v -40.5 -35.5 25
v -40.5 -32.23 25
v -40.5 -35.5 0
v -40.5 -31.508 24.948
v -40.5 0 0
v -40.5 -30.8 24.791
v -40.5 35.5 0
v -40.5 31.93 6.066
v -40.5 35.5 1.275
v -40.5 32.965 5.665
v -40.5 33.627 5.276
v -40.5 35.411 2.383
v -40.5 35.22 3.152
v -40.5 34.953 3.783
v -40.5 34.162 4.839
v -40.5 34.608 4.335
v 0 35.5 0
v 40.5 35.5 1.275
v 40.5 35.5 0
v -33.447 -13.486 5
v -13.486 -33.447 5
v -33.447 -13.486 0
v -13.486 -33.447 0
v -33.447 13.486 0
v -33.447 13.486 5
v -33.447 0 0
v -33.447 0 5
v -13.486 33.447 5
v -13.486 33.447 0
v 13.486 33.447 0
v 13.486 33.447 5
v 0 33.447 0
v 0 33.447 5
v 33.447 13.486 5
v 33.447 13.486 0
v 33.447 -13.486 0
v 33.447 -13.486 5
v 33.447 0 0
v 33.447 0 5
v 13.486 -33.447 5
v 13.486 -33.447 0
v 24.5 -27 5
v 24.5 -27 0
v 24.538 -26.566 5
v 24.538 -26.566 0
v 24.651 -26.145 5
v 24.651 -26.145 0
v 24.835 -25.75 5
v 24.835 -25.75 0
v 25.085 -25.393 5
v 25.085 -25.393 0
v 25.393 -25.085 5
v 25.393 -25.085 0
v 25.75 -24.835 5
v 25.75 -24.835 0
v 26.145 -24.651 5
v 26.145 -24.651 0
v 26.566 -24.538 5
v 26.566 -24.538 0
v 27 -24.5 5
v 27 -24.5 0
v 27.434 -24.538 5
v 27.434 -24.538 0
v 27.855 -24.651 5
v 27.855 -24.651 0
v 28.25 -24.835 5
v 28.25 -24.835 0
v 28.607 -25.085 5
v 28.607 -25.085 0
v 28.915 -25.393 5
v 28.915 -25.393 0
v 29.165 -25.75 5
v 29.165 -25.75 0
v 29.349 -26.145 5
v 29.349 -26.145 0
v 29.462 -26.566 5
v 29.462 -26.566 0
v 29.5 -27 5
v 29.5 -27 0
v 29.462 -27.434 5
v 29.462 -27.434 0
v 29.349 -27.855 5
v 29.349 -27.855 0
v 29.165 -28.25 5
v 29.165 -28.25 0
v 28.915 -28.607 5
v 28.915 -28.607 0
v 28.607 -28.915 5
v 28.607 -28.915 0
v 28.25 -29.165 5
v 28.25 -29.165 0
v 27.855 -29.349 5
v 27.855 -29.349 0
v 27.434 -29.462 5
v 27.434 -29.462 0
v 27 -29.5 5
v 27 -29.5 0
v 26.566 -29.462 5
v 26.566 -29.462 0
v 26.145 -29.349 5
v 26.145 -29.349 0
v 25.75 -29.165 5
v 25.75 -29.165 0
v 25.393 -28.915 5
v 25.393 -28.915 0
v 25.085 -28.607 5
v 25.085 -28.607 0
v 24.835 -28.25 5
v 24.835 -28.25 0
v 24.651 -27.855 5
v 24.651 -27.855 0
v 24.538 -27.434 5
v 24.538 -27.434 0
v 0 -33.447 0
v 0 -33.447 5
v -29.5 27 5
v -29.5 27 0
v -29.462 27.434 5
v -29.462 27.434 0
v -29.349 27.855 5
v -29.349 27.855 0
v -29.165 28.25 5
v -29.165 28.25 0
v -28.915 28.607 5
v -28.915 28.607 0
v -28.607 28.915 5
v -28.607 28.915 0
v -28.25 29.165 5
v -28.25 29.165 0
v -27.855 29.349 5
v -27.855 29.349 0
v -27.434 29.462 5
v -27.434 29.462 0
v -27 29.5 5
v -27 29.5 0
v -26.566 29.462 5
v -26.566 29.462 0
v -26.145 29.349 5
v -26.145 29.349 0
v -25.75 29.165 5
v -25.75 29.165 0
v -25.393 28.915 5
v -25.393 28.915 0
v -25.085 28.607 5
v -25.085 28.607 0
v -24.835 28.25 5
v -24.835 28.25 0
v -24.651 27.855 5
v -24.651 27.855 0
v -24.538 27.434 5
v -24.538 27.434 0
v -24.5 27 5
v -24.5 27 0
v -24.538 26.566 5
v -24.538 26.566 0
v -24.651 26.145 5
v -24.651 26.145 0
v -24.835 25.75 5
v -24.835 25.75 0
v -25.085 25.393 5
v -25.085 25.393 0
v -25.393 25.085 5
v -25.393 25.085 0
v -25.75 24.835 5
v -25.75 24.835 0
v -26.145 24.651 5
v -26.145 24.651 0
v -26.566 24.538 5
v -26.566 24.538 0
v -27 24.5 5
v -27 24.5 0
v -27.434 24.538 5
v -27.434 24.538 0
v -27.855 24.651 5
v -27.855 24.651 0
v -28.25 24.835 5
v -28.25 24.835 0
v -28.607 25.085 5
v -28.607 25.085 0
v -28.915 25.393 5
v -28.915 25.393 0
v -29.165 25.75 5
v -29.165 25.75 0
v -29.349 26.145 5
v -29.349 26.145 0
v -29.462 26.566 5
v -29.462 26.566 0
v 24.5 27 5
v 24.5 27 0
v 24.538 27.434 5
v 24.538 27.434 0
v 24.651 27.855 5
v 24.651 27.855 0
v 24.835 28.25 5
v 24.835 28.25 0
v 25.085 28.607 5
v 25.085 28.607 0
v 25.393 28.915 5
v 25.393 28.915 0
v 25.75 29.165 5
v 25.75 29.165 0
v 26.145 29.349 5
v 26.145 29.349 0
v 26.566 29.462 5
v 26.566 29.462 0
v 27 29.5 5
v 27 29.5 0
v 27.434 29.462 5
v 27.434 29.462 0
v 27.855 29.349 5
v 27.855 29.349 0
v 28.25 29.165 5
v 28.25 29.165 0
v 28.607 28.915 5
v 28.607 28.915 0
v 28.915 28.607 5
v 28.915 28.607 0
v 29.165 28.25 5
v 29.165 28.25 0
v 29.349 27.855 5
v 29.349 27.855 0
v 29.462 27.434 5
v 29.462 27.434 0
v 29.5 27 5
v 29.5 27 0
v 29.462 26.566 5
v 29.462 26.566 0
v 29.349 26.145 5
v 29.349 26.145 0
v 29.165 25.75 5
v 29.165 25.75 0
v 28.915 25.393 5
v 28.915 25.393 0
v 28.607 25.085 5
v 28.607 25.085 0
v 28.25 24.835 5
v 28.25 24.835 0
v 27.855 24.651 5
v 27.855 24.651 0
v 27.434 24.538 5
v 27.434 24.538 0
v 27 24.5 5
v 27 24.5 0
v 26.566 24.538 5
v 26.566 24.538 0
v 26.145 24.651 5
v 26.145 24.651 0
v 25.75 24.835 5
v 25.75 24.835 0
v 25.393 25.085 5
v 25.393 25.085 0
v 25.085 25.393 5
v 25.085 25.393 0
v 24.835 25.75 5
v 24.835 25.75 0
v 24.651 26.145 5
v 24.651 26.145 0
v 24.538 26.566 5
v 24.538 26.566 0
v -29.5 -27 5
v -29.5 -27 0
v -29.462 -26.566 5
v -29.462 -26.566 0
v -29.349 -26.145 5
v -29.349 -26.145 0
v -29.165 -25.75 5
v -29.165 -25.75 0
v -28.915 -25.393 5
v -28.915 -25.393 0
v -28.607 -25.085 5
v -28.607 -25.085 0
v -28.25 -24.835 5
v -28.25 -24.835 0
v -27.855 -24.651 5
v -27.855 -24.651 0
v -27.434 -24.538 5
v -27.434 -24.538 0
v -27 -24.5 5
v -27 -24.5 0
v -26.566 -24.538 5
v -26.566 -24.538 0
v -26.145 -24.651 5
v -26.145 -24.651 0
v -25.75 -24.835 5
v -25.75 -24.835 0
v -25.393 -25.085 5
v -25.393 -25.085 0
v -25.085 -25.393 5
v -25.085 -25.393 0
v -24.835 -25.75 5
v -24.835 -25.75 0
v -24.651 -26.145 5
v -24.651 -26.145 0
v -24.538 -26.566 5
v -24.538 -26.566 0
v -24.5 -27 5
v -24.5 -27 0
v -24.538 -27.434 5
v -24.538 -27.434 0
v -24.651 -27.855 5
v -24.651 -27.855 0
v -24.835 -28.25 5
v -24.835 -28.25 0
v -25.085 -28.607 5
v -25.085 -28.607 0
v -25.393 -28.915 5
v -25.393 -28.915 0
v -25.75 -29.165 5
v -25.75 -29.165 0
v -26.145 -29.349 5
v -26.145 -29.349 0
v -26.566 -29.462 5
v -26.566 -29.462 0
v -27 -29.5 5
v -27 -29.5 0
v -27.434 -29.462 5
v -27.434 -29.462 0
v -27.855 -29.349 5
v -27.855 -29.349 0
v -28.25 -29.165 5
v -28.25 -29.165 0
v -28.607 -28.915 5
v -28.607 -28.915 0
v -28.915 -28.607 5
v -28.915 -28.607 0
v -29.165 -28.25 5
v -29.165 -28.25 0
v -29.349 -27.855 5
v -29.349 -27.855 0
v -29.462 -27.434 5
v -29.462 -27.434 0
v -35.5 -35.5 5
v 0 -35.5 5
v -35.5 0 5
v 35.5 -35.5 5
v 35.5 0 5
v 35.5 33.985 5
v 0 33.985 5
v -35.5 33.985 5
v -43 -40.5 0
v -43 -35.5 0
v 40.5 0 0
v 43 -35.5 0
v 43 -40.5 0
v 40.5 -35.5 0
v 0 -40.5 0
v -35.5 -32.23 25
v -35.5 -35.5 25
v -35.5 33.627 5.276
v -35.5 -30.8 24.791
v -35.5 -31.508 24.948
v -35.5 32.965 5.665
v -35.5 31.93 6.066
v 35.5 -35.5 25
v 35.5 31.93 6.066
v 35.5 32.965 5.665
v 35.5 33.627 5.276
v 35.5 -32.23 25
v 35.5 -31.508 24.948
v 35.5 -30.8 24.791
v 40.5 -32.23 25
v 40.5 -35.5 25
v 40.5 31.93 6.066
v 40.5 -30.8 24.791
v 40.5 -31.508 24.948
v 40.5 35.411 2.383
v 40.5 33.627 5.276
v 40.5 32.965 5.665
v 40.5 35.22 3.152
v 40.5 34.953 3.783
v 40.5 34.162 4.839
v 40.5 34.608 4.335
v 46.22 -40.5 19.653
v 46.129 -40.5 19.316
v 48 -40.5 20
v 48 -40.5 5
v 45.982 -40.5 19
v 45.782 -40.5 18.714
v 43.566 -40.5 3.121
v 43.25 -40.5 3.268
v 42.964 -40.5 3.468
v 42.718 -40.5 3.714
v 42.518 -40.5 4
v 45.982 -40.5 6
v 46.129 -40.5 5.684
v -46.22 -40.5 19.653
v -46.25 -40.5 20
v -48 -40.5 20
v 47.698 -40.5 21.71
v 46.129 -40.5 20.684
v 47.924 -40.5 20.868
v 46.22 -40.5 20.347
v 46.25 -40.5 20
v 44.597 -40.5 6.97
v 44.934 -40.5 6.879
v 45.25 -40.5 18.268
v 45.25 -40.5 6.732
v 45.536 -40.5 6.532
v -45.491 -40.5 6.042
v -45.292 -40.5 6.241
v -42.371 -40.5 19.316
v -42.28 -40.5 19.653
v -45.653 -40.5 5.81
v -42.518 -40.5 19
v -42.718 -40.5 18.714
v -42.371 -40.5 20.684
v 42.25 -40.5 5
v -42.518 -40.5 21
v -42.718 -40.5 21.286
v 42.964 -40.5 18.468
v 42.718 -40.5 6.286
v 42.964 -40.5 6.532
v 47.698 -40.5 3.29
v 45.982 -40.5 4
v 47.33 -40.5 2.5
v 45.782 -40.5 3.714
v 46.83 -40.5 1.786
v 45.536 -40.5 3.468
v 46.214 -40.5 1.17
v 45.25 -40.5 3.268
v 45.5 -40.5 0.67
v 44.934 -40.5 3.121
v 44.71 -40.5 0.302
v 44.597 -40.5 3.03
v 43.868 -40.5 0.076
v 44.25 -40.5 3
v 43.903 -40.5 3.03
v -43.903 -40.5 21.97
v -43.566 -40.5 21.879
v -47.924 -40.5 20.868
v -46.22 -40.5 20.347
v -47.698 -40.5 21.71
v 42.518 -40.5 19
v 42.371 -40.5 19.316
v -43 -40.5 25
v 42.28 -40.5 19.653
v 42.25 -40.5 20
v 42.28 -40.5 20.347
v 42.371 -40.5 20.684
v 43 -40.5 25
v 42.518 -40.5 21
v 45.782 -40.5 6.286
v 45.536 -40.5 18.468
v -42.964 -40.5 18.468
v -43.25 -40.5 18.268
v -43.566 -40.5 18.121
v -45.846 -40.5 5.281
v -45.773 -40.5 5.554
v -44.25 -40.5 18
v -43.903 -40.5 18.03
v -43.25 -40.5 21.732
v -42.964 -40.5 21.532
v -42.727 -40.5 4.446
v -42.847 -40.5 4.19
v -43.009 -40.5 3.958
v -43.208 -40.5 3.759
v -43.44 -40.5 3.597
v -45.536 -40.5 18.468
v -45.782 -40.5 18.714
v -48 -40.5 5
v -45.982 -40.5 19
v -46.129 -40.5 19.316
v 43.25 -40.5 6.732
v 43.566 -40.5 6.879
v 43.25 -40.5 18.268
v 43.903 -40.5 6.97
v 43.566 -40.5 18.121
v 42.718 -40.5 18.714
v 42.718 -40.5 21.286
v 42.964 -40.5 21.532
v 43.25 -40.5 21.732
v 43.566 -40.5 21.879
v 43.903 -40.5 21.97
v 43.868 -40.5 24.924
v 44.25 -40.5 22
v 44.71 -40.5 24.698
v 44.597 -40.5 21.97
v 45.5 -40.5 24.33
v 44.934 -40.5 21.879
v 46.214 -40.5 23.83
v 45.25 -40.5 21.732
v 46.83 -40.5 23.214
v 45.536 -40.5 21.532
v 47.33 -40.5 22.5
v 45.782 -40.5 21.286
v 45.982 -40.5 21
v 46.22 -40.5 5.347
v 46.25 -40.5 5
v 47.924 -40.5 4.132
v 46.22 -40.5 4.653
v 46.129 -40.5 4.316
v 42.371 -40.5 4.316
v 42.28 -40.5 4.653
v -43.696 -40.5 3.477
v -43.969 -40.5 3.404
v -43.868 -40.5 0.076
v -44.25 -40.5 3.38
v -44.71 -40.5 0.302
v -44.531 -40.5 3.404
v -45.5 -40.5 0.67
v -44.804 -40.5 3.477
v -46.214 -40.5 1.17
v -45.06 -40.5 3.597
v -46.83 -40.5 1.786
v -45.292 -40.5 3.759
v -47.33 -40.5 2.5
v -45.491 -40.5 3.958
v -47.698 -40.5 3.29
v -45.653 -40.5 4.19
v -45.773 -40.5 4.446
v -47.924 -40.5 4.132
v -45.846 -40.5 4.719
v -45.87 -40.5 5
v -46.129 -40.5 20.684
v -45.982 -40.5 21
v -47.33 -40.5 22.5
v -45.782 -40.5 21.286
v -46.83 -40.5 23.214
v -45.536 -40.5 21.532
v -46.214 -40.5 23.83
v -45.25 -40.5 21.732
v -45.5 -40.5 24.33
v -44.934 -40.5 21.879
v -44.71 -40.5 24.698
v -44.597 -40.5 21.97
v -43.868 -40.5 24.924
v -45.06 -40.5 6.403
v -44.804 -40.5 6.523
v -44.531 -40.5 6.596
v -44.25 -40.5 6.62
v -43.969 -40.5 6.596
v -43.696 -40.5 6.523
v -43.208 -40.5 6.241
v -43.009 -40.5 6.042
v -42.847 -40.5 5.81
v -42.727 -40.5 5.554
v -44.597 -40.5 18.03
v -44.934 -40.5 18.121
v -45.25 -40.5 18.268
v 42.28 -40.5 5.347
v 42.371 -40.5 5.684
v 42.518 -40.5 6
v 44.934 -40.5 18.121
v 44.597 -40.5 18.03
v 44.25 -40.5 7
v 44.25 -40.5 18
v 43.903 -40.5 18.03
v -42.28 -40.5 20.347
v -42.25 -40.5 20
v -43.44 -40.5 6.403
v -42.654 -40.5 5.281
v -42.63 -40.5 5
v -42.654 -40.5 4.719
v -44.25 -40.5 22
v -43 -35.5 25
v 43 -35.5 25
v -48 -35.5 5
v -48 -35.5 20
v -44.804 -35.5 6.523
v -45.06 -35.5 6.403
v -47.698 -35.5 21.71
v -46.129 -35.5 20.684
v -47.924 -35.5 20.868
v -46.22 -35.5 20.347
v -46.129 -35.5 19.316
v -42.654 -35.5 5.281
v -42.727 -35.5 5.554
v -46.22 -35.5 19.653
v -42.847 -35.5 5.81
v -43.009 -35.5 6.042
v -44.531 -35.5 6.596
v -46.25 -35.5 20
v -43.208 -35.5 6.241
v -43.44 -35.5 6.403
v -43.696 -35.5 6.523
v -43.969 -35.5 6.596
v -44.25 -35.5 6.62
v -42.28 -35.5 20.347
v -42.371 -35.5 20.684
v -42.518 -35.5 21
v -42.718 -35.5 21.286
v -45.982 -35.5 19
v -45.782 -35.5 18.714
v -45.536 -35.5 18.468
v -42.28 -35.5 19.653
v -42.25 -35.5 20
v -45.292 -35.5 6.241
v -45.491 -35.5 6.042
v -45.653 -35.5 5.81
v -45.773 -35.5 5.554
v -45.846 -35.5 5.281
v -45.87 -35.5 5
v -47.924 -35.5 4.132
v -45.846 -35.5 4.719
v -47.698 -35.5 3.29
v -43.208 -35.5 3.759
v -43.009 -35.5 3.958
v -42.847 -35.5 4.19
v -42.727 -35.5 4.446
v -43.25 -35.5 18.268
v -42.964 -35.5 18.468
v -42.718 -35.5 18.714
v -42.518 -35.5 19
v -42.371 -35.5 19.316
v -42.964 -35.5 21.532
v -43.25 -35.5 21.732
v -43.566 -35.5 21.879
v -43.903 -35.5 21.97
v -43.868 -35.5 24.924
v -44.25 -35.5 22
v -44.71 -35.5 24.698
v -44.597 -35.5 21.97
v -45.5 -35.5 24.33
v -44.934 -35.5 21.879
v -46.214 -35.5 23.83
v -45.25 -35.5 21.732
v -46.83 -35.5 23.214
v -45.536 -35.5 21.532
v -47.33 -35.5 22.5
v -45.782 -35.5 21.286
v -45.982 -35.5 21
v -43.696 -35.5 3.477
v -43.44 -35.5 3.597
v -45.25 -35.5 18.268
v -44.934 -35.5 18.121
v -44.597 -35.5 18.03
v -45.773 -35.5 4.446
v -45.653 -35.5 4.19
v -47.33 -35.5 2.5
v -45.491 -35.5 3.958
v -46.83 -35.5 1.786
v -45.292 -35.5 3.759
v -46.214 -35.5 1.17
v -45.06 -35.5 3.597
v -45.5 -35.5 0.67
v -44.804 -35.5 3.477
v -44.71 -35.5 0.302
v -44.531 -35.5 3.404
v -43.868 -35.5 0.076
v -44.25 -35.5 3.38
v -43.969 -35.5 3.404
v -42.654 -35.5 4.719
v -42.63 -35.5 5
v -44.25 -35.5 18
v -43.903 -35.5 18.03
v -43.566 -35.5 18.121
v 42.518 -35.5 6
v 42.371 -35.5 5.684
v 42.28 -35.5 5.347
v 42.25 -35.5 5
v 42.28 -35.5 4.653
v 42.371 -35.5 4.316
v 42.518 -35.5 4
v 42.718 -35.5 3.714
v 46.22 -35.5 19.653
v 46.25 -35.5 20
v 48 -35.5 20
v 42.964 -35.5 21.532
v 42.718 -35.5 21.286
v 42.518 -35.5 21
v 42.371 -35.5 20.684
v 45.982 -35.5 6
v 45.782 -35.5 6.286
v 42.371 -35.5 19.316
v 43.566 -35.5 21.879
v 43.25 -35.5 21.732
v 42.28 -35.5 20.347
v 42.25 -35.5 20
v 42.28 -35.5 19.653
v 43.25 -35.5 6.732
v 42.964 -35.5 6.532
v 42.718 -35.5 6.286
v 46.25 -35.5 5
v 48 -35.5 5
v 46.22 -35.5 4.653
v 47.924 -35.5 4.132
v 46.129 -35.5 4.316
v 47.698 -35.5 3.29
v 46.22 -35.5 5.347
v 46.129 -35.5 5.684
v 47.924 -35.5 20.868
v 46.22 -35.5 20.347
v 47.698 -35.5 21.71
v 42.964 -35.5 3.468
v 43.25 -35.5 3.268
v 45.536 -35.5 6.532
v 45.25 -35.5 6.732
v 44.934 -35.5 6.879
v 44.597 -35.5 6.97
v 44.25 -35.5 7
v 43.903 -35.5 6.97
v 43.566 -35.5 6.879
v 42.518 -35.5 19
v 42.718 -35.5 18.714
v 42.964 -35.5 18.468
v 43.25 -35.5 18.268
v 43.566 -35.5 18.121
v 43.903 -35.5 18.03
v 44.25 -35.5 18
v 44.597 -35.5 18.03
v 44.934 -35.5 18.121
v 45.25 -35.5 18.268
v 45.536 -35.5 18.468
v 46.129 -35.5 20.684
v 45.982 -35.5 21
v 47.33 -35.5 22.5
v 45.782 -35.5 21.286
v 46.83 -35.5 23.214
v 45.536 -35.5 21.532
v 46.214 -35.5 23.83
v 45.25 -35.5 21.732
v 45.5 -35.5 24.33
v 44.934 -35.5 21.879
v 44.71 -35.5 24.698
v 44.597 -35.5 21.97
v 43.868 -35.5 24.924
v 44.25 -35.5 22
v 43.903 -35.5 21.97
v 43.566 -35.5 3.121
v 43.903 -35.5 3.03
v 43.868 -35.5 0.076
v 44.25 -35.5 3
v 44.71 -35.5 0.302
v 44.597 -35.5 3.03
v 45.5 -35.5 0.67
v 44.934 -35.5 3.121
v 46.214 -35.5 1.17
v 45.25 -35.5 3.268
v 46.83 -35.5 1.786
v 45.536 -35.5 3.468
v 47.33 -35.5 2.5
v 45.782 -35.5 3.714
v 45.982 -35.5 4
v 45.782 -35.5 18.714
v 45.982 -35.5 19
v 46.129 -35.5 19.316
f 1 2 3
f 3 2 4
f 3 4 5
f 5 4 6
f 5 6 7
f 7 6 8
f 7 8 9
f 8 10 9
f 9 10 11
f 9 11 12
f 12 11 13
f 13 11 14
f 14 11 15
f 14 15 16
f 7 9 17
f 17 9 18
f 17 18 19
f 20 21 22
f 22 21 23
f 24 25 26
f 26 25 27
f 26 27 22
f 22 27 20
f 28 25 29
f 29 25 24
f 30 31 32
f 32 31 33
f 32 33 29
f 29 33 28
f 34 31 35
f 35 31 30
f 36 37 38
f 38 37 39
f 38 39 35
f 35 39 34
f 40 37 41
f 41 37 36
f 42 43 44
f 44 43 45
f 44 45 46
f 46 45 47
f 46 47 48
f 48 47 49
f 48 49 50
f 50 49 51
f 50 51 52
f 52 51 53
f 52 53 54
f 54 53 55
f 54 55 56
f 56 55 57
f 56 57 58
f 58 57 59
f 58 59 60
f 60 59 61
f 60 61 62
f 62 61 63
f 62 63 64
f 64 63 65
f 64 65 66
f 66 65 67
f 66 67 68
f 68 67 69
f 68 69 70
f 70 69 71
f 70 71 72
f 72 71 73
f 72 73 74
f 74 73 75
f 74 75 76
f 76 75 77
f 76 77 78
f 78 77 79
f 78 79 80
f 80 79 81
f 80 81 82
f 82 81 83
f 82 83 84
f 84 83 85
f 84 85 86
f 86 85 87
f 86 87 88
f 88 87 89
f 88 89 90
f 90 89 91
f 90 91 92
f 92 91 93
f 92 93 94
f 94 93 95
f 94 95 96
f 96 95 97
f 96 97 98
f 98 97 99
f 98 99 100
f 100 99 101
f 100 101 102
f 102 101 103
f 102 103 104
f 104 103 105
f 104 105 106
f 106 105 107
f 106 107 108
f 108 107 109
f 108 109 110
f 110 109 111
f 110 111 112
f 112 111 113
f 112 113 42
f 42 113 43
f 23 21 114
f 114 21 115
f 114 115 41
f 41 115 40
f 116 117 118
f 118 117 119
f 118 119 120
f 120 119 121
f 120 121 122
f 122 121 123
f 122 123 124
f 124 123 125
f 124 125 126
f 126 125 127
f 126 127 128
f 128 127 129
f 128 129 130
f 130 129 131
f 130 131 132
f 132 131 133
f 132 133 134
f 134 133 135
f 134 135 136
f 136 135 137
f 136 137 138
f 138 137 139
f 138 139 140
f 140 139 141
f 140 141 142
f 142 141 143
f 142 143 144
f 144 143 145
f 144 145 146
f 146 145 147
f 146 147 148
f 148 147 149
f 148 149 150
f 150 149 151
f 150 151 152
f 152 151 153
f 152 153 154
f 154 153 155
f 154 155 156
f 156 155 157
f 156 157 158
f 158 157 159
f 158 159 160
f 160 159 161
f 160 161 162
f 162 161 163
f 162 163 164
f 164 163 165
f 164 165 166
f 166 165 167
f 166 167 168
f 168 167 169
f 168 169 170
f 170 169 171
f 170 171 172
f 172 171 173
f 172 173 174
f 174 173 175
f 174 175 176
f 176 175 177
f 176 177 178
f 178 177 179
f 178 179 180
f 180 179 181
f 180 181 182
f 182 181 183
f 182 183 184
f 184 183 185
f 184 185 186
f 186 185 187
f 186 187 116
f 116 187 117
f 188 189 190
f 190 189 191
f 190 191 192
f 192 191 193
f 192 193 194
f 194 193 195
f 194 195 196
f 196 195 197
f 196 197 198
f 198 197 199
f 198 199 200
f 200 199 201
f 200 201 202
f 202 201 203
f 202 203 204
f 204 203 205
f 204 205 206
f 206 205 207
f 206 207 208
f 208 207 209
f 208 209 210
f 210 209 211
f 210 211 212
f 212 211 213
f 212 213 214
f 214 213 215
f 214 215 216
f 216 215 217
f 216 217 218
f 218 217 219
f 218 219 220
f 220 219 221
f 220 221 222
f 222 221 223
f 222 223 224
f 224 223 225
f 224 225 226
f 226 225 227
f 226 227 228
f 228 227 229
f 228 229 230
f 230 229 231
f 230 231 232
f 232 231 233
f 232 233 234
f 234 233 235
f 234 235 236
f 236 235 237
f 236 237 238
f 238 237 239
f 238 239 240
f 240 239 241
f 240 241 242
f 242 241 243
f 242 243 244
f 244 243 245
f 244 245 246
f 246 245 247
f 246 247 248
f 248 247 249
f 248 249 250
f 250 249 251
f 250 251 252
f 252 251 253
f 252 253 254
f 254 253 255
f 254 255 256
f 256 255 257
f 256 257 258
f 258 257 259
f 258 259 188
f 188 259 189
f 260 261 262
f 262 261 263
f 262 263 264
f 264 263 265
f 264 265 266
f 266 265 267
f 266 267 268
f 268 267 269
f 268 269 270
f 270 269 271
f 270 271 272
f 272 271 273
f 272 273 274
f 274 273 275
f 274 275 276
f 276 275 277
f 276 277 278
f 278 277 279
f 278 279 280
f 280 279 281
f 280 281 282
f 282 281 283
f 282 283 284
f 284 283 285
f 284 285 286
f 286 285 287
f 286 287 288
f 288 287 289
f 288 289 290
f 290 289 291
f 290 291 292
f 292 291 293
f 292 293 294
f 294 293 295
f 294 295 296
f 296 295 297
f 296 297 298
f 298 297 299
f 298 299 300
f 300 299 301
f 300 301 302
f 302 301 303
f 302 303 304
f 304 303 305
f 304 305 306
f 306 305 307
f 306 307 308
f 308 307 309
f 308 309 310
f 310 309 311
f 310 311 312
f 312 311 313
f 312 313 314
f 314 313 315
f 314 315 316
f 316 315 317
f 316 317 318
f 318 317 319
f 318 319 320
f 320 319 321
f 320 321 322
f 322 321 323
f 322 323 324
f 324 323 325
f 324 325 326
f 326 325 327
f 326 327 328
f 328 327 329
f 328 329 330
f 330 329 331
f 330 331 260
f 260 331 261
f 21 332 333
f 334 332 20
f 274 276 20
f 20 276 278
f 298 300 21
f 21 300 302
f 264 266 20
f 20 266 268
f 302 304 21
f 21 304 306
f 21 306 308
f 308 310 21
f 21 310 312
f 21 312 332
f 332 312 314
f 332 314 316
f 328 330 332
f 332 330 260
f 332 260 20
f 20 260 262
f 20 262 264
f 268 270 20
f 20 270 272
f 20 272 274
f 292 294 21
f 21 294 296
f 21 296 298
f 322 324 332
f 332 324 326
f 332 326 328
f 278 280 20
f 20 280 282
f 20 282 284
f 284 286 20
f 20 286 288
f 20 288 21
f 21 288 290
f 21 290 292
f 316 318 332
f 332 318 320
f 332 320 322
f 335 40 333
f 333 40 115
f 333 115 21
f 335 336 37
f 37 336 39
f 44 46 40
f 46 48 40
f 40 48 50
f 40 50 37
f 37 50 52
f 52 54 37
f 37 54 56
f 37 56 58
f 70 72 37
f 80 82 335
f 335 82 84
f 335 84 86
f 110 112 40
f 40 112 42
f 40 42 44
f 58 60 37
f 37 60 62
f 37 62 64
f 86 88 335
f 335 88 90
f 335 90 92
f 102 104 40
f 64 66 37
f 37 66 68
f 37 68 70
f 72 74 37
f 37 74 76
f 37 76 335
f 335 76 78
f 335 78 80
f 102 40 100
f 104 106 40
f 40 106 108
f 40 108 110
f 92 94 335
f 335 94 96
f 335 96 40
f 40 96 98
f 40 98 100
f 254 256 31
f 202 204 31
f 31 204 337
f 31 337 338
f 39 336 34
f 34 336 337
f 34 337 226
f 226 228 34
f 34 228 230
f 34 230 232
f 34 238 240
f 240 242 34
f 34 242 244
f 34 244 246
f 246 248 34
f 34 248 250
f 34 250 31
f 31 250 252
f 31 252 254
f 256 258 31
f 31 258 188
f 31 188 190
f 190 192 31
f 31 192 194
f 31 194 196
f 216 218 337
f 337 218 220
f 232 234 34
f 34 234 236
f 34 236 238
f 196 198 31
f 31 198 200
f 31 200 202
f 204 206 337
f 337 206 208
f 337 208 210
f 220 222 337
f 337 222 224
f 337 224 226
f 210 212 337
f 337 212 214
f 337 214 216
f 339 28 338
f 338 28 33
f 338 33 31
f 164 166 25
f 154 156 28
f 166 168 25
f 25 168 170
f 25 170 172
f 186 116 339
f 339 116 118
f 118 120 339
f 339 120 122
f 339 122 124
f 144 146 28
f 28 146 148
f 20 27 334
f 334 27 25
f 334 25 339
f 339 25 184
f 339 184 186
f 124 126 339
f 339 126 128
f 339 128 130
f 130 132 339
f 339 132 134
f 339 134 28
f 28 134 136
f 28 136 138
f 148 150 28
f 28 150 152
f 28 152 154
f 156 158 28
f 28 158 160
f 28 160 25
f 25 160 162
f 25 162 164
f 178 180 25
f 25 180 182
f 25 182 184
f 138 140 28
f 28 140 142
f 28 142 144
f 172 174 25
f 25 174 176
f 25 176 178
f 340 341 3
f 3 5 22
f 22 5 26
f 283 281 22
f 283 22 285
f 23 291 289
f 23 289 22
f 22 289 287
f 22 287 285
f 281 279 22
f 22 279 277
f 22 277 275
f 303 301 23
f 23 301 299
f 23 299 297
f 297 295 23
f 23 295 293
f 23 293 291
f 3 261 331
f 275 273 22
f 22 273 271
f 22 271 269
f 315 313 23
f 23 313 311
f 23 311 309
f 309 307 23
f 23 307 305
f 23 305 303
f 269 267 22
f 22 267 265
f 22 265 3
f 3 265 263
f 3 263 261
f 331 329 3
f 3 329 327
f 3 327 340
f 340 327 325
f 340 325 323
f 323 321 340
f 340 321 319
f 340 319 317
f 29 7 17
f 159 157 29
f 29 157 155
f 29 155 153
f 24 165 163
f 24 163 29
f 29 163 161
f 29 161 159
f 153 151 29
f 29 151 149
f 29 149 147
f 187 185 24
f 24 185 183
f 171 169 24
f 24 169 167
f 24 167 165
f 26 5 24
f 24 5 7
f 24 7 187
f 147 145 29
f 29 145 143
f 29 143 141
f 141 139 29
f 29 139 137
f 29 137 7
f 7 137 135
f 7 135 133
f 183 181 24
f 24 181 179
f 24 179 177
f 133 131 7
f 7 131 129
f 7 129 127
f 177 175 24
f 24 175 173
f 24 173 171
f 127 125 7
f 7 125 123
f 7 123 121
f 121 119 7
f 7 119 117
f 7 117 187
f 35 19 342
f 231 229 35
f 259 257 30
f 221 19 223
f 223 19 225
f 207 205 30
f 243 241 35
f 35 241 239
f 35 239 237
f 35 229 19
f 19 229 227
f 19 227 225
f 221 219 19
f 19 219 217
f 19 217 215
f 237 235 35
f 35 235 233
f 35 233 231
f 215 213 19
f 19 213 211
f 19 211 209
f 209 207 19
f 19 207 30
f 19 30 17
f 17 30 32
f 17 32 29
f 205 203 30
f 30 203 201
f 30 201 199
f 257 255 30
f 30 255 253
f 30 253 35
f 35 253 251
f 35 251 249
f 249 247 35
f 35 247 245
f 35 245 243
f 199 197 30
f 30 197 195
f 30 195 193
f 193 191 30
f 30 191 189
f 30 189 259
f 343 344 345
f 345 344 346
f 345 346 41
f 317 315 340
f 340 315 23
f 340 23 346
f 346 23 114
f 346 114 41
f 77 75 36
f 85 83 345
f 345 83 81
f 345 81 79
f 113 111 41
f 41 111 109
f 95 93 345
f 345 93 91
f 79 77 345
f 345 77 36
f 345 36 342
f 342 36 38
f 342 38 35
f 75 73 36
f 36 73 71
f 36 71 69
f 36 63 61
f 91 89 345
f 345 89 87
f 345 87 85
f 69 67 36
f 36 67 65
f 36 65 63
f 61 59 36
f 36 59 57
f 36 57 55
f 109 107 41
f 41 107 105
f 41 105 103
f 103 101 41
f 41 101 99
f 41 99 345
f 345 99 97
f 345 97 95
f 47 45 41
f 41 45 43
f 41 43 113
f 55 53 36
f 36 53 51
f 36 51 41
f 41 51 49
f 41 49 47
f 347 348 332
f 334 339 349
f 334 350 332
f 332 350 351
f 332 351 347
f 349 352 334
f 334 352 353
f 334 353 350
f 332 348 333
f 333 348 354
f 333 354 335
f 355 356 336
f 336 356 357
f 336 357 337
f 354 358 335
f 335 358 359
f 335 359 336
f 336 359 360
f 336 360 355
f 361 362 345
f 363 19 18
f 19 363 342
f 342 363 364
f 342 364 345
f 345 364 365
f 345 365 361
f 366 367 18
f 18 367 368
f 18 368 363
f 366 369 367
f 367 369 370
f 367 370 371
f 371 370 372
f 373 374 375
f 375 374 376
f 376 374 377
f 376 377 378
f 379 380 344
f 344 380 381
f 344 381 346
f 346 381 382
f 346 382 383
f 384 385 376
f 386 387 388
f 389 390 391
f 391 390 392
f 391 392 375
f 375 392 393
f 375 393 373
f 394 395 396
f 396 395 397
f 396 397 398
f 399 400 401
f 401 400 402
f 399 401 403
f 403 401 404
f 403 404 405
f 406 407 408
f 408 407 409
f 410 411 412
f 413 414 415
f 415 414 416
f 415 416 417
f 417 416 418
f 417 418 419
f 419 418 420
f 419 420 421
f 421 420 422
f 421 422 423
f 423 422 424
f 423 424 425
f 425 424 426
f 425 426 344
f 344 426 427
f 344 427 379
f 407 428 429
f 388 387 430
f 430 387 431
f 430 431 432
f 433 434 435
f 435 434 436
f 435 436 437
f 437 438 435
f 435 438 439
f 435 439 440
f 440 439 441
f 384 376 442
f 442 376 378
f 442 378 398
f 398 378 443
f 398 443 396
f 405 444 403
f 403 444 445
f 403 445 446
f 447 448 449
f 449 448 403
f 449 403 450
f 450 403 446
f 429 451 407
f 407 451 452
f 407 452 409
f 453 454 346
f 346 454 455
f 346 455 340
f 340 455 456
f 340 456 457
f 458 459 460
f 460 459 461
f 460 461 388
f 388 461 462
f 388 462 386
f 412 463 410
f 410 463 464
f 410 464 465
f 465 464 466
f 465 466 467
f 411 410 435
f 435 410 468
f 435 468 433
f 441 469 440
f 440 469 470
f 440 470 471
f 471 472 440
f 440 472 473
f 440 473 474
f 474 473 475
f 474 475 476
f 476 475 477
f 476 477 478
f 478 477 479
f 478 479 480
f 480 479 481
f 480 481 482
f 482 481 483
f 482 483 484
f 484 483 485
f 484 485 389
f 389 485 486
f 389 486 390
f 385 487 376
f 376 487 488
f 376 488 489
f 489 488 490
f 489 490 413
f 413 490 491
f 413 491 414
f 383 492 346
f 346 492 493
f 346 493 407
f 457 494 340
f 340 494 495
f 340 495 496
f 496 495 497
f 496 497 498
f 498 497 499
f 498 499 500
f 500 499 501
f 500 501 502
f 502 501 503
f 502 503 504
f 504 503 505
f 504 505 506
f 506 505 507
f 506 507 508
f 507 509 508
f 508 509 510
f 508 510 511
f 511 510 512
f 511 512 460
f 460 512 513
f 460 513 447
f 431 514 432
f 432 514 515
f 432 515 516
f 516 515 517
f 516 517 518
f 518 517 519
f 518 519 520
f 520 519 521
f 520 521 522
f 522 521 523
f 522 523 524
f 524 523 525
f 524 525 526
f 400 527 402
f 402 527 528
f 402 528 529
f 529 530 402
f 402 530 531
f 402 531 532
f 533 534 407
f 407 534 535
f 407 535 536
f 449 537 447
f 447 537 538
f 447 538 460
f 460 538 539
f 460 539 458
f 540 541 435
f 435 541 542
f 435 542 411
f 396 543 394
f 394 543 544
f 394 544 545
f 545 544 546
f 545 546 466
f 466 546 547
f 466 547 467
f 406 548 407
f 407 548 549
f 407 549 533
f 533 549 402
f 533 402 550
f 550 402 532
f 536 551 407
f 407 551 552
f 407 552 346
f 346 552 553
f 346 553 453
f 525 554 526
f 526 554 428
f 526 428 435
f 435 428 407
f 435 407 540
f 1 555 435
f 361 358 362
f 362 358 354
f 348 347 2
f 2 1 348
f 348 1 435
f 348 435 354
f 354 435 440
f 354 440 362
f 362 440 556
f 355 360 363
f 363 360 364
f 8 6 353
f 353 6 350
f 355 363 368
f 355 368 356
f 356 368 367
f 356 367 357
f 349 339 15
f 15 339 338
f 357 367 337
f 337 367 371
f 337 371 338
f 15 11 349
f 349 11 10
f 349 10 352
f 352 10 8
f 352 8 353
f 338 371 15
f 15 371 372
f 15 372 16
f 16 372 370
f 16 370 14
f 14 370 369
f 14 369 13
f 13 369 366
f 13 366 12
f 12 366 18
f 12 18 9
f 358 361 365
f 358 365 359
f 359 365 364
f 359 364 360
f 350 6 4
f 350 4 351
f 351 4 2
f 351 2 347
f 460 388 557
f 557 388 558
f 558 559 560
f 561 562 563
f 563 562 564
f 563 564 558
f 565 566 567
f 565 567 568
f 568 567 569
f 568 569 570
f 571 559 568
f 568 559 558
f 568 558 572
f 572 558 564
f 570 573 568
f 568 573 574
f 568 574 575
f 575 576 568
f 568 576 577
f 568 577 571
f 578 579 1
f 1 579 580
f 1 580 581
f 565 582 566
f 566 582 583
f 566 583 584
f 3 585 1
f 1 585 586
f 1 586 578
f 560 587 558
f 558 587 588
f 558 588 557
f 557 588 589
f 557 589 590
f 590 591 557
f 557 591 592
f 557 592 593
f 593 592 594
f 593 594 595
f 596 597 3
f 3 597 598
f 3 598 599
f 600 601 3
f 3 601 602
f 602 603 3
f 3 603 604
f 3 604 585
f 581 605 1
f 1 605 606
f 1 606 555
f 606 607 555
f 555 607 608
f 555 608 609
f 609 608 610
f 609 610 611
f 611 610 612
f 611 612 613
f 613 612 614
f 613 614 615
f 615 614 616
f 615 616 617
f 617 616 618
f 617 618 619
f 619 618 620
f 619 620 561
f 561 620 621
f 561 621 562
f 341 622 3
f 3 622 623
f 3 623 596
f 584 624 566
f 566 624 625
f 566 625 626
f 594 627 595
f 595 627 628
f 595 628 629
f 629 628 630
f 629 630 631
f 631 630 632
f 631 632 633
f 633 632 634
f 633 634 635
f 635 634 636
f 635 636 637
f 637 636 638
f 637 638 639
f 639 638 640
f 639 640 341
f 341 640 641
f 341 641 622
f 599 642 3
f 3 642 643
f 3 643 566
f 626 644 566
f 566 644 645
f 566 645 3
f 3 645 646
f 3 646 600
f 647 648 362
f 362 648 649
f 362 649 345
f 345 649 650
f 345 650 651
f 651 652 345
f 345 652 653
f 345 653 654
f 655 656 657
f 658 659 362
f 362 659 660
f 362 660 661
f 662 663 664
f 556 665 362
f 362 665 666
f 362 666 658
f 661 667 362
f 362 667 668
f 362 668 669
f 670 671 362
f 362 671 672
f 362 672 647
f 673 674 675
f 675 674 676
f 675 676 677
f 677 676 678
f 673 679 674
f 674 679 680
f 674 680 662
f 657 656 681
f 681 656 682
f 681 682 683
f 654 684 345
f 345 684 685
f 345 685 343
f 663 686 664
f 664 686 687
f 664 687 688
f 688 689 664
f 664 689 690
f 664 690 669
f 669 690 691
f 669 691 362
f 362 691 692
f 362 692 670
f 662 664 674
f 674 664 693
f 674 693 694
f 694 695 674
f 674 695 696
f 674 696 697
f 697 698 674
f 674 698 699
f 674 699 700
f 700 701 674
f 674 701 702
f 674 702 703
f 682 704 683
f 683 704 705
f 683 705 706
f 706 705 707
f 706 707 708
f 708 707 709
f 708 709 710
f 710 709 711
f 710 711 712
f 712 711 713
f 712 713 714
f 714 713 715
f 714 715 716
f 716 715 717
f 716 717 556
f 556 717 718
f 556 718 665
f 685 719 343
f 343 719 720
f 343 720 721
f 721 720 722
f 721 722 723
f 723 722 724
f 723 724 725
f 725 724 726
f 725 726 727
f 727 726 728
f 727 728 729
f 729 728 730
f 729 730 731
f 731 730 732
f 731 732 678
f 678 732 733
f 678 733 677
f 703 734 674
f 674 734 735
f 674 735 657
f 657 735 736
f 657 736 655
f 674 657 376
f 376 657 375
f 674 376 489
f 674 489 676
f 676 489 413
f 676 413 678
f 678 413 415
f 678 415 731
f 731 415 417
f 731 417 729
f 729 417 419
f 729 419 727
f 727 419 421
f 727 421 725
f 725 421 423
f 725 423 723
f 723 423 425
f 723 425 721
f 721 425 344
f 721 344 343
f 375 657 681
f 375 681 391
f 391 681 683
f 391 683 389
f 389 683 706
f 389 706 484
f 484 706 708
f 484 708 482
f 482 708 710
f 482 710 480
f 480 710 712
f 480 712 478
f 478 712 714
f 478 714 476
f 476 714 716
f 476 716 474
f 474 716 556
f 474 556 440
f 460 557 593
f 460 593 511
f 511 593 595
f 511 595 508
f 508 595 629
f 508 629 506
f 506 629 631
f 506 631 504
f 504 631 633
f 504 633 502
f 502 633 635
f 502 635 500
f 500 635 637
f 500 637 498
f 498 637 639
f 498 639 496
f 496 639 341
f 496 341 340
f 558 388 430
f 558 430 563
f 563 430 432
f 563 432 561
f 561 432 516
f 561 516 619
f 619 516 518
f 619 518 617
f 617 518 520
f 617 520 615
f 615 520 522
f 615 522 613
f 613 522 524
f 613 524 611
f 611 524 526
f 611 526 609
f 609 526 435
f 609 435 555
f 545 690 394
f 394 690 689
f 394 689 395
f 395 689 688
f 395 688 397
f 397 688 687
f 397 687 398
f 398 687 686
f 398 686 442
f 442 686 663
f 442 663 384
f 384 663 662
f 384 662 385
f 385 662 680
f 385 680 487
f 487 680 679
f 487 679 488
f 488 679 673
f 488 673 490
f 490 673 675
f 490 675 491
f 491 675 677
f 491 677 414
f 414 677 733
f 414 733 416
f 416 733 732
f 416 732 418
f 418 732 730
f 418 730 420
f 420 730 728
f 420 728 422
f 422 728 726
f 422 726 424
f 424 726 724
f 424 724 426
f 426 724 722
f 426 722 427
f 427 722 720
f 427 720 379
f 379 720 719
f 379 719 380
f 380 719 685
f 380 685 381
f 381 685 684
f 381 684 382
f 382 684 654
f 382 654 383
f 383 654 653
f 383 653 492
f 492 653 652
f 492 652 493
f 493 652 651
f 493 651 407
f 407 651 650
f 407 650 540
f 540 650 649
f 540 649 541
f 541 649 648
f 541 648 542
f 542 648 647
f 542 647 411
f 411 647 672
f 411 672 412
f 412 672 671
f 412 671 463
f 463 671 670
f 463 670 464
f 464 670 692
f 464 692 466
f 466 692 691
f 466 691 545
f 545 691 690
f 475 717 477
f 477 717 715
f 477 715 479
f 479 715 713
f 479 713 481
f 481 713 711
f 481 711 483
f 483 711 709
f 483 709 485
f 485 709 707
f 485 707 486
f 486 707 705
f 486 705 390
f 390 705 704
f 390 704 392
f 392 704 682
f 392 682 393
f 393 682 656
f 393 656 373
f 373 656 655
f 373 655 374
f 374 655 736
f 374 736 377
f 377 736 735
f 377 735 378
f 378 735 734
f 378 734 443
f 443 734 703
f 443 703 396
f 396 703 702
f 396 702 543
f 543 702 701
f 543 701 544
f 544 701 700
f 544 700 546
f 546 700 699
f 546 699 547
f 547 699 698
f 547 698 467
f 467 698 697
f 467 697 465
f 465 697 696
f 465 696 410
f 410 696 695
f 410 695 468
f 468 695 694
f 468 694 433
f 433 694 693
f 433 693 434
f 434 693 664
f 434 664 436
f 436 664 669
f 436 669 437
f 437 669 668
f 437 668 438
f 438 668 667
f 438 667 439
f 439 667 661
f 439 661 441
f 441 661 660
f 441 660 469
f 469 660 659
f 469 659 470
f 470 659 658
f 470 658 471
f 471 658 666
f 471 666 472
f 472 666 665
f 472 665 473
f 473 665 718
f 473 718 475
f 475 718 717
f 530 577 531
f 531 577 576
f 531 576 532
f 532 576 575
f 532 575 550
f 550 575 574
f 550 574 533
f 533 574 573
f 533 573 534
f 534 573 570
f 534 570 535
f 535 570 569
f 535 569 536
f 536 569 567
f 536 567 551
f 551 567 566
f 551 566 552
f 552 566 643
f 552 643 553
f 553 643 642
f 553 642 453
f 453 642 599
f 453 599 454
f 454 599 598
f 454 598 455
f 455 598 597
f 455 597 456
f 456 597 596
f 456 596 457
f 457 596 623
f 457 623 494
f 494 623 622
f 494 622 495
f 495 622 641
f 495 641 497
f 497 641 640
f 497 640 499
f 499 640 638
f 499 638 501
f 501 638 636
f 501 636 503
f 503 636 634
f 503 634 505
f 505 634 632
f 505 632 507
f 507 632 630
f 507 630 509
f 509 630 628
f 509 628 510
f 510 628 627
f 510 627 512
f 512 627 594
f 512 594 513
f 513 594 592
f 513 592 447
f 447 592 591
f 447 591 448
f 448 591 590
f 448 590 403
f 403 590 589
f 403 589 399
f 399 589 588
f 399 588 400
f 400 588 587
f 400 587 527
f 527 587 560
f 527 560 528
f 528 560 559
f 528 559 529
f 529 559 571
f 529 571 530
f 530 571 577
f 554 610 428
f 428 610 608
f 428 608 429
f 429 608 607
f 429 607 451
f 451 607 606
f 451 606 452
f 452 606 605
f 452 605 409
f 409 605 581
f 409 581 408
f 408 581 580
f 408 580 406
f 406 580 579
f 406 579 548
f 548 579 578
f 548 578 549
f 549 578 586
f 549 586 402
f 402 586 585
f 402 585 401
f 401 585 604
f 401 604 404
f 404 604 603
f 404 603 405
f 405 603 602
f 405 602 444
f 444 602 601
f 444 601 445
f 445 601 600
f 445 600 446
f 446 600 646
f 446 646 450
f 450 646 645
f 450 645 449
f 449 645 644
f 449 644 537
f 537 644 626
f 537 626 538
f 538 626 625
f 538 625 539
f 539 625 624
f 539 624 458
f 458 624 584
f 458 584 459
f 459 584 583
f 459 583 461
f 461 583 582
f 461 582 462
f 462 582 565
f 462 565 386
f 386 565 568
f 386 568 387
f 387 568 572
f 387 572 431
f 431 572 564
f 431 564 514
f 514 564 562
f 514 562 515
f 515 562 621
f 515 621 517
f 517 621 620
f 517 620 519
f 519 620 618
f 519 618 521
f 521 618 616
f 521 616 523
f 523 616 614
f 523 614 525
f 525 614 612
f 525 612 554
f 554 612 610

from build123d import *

# Parameters (mm, degrees)
SKETCH4_W                = 71
SKETCH4_H                = 71
SKETCH4_R                = 2.5
BOSS_EXTRUDE3_DEPTH      = 5
BOSS_EXTRUDE4_DEPTH      = 20
BOSS_EXTRUDE4_DEPTH_BACK = 5
CUT_EXTRUDE1_DEPTH       = 94.948123983
FILLET2_START            = -41
FILLET2_DEPTH            = 82
SKETCH8_W                = 7.5
SKETCH8_H                = 5
BOSS_EXTRUDE5_DEPTH      = 25
FILLET3_R                = 5
SKETCH10_R               = 2
SKETCH10_R_2             = 1.620466931
CUT_EXTRUDE2_DEPTH       = 25


with BuildPart() as part:
    # Sketch4 → Boss-Extrude3 (new body)
    with BuildSketch(Plane.XY):
        Rectangle(SKETCH4_W, SKETCH4_H)
        with Locations((-27, 27)):
            Circle(SKETCH4_R, mode=Mode.SUBTRACT)
        with Locations((27, 27)):
            Circle(SKETCH4_R, mode=Mode.SUBTRACT)
        with Locations((27, -27)):
            Circle(SKETCH4_R, mode=Mode.SUBTRACT)
        with Locations((-27, -27)):
            Circle(SKETCH4_R, mode=Mode.SUBTRACT)
        Polygon((-33.446601953, 13.48642712), (-13.48642712, 33.446601953), (13.48642712, 33.446601953), (33.446601953, 13.48642712), (33.446601953, -13.48642712), (13.48642712, -33.446601953), (-13.48642712, -33.446601953), (-33.446601953, -13.48642712), align=None, mode=Mode.SUBTRACT)
    extrude(amount=BOSS_EXTRUDE3_DEPTH)

    # Sketch5 → Boss-Extrude4 (add, two sides: drawn at the far end of the back side and taken through both)
    with BuildSketch(Plane.XY.offset(5).offset(-BOSS_EXTRUDE4_DEPTH_BACK)):
        Polygon((-35.5, 35.5), (-40.5, 35.5), (-40.5, -38.999937635), (-40.5, -40.5), (40.5, -40.5), (40.5, -38.999937635), (40.5, 35.5), (35.5, 35.5), (35.5, -35.5), (-35.5, -35.5), align=None)
    extrude(amount=BOSS_EXTRUDE4_DEPTH + BOSS_EXTRUDE4_DEPTH_BACK)

    # Sketch6 → Cut-Extrude1 (cut, through all)
    with BuildSketch(Plane.ZY.offset(40.5)):
        Polygon((5, 35.5), (25, 35.5), (25, -31.5), align=None)
    extrude(amount=-CUT_EXTRUDE1_DEPTH, mode=Mode.SUBTRACT)

    # Fillet2: read off the stored shape, not the designer's step
    # Fillet2 outline → Fillet2 (cut)
    with BuildSketch(Plane.YZ.offset(FILLET2_START)):
        with BuildLine():
            add(Edge.make_bspline(
                [(-30.800168474, 24.791095067), (-31.5, 25), (-32.230346106, 25)],
                knots=[0, 0, 0, 1, 1, 1], degree=2))
            Line((-30.800168474, 24.791095067), (-31.5, 25))
            Line((-31.5, 25), (-32.230346106, 25))
        make_face()
        with BuildLine():
            Line((35.5, 1.27452355), (35.5, 5))
            Line((35.5, 5), (31.930177632, 6.065618617))
            add(Edge.make_bspline(
                [(31.930177632, 6.065618617), (35.5, 5), (35.5, 1.27452355)],
                knots=[0.651540973, 0.651540973, 0.651540973, 1.651540973, 1.651540973, 1.651540973], degree=2))
        make_face()
    extrude(amount=FILLET2_DEPTH, mode=Mode.SUBTRACT)

    # Sketch8 → Boss-Extrude5 (add)
    with BuildSketch(Plane.XY.offset(25)):
        with Locations((-44.25, -38)):
            Rectangle(SKETCH8_W, SKETCH8_H)
        with Locations((44.25, -38)):
            Rectangle(SKETCH8_W, SKETCH8_H)
    extrude(amount=-BOSS_EXTRUDE5_DEPTH)

    # Fillet3
    fillet3_edges = [part.edges().sort_by_distance(p)[0] for p in [
        (-48, -38, 0),
        (-48, -38, 25),
        (48, -38, 0),
        (48, -38, 25),
    ]]
    fillet(fillet3_edges, radius=FILLET3_R)

    # Sketch10 → Cut-Extrude2 (cut)
    with BuildSketch(Plane(origin=(0, -35.5, 0), x_dir=(1, 0, 0), z_dir=(0, 1, 0))):
        with Locations(Location((44.25, -5, 0), (0, 0, 270))):
            Circle(SKETCH10_R)
        with Locations(Location((-44.25, -5, 0), (0, 0, 270))):
            Circle(SKETCH10_R_2)
        with Locations(Location((-44.25, -20, 0), (0, 0, 270))):
            Circle(SKETCH10_R)
        with Locations(Location((44.25, -20, 0), (0, 0, 270))):
            Circle(SKETCH10_R)
    extrude(amount=-CUT_EXTRUDE2_DEPTH, mode=Mode.SUBTRACT)


solid = part.part
